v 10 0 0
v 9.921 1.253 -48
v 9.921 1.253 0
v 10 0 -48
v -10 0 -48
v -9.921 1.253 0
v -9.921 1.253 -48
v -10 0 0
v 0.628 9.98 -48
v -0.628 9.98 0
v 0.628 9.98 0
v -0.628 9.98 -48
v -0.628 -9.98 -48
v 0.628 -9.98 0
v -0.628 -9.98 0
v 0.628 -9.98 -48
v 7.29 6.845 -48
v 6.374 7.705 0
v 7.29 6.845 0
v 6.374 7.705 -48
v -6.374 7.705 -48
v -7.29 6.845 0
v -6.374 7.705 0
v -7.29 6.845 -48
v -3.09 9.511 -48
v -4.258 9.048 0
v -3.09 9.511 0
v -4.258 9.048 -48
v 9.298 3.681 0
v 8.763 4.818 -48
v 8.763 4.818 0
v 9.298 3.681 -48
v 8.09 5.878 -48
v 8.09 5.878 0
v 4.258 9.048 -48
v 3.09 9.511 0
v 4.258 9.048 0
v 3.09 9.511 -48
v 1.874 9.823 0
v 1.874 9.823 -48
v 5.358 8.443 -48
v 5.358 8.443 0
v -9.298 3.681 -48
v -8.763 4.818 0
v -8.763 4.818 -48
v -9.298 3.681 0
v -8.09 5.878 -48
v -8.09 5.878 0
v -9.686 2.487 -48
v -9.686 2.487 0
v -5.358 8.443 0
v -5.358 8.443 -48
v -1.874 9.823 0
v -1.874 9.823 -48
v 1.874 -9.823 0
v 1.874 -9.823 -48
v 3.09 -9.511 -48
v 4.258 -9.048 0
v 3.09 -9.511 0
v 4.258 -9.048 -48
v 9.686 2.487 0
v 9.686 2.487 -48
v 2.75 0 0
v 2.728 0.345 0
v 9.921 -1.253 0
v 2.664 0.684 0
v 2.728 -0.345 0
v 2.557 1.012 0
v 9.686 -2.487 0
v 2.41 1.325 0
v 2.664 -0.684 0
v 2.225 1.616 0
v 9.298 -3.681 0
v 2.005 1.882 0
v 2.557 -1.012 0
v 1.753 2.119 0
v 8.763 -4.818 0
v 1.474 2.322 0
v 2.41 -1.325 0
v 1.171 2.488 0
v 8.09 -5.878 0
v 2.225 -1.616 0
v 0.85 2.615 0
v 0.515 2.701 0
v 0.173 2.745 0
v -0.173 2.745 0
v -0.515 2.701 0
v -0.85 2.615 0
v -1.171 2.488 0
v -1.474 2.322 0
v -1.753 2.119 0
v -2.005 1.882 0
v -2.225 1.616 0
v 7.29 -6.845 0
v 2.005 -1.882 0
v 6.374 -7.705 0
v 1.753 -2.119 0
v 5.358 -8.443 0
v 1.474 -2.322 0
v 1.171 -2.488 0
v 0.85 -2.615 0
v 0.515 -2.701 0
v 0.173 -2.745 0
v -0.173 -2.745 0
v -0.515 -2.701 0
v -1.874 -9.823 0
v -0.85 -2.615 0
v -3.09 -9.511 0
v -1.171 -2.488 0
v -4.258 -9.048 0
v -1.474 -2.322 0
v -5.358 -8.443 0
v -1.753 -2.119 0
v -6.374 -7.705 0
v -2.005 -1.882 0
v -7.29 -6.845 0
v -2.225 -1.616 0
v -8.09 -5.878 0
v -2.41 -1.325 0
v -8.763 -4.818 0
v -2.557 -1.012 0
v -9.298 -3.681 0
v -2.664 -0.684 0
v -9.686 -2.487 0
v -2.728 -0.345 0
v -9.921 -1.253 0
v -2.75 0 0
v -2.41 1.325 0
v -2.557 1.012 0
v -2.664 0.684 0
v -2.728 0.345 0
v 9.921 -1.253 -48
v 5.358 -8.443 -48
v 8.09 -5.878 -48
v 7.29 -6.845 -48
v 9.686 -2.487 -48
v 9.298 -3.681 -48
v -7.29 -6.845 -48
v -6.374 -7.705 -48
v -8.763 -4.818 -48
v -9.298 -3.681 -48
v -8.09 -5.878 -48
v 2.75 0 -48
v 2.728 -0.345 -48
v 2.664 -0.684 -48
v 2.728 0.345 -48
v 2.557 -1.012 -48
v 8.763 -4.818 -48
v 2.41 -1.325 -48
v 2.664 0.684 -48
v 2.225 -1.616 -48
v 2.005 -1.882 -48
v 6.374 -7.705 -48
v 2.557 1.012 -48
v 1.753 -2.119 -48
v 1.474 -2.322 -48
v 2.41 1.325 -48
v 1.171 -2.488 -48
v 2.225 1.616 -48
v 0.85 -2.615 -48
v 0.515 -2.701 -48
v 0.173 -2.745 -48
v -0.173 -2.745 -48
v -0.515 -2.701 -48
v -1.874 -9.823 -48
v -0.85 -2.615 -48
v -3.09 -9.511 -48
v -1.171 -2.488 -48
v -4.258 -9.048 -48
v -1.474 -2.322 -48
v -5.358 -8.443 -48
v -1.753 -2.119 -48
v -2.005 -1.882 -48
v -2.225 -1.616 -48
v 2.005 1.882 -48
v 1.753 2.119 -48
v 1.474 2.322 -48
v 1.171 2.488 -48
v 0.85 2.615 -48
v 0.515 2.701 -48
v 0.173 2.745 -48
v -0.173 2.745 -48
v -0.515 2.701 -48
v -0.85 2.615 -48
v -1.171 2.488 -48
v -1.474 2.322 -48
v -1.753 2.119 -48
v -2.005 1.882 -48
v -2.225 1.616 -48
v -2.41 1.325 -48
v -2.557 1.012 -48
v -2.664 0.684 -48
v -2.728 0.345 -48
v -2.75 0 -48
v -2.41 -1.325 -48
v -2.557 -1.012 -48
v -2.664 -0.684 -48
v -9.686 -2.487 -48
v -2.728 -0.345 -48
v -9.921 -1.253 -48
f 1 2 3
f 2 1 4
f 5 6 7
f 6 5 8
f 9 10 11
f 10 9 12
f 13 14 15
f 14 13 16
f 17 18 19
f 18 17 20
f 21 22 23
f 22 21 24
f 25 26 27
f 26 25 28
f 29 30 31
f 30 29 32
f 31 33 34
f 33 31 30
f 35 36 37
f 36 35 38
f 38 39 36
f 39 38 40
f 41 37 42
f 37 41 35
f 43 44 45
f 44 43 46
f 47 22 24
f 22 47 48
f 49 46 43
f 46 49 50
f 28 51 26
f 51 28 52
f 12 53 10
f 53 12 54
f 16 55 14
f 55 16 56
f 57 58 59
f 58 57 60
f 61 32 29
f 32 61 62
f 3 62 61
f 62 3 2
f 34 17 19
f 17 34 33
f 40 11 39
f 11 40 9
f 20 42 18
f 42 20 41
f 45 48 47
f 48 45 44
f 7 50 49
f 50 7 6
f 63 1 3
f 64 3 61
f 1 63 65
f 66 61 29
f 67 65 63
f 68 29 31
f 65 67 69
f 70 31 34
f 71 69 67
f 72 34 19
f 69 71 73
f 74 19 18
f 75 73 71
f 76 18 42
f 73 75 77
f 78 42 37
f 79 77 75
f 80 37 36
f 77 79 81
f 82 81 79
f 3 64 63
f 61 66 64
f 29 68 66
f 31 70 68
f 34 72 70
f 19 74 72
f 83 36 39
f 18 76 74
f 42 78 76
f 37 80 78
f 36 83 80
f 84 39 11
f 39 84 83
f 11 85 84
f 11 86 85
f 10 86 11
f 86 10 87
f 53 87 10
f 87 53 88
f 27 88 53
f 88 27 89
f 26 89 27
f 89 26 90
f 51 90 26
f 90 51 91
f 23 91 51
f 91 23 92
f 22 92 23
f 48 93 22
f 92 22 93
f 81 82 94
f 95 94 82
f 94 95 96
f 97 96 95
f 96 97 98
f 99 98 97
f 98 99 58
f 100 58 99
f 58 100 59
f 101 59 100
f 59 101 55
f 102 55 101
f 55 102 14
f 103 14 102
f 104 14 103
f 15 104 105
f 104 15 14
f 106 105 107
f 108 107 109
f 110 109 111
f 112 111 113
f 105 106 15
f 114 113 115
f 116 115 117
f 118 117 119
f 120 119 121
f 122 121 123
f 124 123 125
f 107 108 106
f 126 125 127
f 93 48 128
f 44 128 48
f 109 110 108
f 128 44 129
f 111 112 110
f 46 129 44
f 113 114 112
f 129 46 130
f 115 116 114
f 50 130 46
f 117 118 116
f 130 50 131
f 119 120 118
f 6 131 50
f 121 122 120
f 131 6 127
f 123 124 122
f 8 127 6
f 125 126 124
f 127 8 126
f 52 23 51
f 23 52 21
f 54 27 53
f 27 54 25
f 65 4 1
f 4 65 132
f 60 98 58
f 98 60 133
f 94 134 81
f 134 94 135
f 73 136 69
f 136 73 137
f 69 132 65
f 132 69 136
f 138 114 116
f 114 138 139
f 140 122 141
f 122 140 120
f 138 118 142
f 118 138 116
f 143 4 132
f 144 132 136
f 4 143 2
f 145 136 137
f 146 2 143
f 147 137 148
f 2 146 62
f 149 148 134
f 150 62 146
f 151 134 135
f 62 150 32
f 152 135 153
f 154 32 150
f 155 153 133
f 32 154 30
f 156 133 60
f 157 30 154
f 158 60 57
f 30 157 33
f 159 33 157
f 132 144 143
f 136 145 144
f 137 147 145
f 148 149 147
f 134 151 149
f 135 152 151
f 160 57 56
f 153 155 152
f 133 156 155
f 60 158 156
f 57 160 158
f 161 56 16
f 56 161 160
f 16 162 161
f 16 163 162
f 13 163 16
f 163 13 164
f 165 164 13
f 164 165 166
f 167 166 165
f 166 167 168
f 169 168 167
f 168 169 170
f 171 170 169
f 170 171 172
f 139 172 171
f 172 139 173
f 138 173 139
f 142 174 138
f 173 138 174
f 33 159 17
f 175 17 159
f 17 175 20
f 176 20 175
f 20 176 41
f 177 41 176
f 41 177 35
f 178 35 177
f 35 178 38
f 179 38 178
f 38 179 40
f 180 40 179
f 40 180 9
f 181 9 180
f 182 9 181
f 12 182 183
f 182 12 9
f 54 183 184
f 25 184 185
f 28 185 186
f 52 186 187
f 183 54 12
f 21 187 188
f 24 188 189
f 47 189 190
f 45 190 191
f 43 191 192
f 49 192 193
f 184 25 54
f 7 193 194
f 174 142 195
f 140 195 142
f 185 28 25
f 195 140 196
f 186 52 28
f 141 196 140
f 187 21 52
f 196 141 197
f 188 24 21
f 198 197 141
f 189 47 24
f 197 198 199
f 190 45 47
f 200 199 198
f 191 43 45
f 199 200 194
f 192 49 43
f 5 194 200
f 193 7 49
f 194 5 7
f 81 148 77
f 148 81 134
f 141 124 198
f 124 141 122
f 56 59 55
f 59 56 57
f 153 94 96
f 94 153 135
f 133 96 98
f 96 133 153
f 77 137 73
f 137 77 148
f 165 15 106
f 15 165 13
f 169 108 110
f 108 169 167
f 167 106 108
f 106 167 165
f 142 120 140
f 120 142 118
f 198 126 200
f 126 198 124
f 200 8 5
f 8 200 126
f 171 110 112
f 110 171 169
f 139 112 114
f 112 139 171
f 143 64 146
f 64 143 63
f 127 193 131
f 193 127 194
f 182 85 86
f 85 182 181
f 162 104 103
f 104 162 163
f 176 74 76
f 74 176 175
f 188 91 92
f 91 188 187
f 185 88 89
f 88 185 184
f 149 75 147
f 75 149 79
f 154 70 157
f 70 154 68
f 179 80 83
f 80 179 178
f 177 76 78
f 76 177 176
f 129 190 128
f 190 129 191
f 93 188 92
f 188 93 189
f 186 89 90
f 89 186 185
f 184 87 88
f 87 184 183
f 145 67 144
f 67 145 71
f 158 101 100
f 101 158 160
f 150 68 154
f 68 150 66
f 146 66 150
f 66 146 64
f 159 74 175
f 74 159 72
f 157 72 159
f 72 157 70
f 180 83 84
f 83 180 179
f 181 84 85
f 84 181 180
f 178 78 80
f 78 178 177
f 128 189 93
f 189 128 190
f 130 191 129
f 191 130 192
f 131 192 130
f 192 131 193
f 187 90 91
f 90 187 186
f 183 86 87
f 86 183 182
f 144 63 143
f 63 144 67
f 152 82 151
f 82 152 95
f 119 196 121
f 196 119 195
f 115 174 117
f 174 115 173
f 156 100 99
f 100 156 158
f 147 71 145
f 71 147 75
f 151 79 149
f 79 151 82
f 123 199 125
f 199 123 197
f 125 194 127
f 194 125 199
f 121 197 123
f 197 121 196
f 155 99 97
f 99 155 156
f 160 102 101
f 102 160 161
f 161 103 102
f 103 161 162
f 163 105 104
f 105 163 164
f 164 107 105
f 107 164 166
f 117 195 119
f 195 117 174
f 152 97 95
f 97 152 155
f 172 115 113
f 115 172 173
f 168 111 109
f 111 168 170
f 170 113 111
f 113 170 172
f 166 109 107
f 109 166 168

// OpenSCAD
$fn = 50;


difference() {
	union() {
		translate(v = [0, 0, -48.0000000000]) {
			cylinder(h = 48, r = 10.0000000000);
		}
	}
	union() {
		#translate(v = [0, 0, -48]) {
			cylinder(h = 48, r = 2.7500000000);
		}
	}
}
